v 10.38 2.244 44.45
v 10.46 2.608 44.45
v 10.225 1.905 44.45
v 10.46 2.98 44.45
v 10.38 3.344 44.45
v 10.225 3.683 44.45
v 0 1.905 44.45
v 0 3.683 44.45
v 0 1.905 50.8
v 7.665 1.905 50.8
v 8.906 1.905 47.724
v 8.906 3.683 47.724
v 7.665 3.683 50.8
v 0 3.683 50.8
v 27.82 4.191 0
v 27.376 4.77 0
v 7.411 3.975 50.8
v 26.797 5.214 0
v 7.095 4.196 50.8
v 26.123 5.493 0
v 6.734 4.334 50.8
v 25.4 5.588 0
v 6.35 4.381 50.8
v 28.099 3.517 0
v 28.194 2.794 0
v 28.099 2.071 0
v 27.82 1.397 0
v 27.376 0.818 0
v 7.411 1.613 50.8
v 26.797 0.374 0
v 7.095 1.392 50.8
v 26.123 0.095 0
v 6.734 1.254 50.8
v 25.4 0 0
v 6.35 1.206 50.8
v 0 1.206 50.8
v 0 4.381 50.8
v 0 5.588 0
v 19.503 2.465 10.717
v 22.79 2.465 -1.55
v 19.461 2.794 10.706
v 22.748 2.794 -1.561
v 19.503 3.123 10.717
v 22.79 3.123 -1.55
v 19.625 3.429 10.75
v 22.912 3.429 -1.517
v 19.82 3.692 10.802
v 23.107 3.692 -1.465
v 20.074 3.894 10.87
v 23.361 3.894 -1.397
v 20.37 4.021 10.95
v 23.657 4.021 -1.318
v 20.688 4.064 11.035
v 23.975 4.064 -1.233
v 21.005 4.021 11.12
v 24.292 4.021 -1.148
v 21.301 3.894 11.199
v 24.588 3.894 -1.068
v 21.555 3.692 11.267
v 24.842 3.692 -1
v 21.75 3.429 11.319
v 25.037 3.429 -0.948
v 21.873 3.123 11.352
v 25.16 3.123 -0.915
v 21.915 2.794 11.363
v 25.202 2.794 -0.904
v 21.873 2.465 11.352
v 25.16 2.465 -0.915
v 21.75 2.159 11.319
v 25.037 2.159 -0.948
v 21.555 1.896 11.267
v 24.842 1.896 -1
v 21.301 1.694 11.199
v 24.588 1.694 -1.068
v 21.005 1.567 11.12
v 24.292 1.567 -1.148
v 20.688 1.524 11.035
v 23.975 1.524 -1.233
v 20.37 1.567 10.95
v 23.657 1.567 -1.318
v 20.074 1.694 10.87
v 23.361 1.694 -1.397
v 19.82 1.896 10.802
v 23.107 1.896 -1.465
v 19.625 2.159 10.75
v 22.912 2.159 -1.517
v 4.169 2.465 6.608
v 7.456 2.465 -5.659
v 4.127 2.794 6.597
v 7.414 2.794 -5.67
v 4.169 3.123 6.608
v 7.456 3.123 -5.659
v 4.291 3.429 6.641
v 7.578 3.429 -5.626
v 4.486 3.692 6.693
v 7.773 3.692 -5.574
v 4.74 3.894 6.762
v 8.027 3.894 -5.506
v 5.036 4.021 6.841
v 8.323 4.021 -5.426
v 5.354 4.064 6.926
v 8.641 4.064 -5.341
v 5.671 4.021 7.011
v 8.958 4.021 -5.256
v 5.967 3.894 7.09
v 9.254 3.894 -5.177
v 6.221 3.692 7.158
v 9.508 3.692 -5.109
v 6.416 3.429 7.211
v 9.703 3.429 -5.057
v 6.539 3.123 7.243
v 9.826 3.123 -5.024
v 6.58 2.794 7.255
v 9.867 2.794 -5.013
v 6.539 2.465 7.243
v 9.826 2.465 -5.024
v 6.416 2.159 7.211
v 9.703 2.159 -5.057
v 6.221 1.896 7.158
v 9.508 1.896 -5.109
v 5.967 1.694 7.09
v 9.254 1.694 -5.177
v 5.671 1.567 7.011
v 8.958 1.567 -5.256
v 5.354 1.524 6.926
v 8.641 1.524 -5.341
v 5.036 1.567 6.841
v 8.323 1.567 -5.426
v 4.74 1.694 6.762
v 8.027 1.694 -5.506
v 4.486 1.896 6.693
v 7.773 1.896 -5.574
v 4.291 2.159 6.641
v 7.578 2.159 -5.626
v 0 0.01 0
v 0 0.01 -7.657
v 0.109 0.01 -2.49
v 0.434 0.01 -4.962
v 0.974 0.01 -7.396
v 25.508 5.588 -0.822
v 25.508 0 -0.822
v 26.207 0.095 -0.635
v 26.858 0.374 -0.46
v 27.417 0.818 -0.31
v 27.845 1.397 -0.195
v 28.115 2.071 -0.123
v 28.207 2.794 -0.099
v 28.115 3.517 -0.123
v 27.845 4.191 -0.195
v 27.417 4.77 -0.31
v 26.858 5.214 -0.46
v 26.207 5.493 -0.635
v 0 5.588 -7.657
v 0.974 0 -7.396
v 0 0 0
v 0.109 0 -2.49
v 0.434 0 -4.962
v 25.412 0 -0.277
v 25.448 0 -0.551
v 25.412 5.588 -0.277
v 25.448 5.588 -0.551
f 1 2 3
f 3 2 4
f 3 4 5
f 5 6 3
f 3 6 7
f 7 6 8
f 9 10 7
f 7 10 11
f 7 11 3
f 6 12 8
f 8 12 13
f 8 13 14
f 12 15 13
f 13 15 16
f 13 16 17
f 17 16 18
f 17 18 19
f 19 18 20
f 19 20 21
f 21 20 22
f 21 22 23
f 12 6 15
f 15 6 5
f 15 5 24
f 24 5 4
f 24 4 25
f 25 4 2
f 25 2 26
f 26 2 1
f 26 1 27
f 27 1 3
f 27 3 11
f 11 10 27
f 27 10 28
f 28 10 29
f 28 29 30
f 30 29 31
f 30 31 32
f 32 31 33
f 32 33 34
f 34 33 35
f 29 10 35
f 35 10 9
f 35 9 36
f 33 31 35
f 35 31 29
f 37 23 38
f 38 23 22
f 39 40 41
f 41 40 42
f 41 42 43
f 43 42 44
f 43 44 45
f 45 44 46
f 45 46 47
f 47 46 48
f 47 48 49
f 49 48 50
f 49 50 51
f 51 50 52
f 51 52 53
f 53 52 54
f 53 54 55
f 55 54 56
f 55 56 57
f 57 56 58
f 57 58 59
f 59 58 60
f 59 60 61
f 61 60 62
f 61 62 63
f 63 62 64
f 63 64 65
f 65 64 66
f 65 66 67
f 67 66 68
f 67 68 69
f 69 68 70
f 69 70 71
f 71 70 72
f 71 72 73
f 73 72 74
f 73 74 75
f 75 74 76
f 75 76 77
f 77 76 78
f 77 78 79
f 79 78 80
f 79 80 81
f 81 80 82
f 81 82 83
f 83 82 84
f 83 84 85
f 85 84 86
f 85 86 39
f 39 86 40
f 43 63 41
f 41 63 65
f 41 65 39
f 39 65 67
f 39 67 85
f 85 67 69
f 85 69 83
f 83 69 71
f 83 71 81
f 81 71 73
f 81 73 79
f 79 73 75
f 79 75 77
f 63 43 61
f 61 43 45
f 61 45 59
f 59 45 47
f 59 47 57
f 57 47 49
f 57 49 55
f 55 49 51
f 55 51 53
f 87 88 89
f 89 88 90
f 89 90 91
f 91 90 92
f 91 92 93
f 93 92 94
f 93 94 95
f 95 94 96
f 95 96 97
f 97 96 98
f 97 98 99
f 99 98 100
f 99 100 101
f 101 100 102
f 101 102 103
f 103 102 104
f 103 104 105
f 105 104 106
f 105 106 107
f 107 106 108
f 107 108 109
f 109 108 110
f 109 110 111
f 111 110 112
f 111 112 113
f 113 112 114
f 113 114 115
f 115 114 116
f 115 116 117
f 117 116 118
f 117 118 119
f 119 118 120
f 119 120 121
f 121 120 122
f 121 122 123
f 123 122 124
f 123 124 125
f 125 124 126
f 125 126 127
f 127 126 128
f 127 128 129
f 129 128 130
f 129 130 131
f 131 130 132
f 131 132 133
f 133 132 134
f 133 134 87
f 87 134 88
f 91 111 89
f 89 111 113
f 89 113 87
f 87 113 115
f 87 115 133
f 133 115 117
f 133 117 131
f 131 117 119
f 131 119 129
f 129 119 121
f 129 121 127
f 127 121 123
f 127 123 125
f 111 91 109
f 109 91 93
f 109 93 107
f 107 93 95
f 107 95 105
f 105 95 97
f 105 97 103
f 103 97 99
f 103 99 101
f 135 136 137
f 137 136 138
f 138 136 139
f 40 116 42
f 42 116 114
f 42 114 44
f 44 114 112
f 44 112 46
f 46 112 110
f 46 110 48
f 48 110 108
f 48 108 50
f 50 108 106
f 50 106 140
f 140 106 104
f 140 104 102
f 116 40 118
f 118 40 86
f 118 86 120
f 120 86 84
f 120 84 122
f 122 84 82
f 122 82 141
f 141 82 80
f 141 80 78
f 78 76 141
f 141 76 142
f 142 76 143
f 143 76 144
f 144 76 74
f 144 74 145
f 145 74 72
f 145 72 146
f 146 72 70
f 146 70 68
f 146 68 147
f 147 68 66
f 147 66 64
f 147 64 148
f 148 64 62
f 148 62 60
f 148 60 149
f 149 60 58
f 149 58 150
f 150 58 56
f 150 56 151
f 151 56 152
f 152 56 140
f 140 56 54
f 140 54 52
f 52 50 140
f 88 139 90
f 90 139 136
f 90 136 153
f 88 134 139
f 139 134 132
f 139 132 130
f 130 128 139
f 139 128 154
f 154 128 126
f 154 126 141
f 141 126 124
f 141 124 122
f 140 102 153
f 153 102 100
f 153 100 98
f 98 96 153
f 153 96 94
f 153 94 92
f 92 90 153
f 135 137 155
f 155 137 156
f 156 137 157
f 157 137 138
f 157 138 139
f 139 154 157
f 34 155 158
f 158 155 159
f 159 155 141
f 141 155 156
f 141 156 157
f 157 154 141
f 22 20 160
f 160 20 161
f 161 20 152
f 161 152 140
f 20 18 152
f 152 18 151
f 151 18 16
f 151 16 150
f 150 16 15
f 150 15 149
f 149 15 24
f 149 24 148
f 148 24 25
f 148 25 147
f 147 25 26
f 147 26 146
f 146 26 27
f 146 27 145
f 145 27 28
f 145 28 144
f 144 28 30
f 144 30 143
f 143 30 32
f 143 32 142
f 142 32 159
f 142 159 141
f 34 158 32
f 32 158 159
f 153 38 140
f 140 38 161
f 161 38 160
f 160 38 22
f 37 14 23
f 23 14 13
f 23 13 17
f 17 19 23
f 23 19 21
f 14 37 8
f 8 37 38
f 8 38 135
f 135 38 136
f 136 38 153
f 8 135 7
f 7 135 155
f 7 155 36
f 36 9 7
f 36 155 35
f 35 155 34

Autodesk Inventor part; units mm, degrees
ref_plane "YZ Plane" through (0, 0, 0) normal (1, 0, 0) x (0, 1, 0)
ref_plane "XZ Plane" through (0, 0, 0) normal (0, 1, 0) x (-1, 0, 0)
sketch "Sketch2" plane through (0, 0, 0) normal (0, 0, 1) x (1, 0, 0)
  line L0 (0, 0) -> (25.4, 0)
  line L1 (25.4, 0) -> (25.4, 5.588)
  line L2 (25.4, 5.588) -> (0, 5.588)
  line L3 (0, 5.588) -> (0, 0)
  arc A0 (25.4, 0) -> (25.4, 5.588) centre (25.4, 2.794) ccw
  dimension "d0" = 25.4
  dimension "d1" = 5.588
ref_plane "Work Plane1" through (0, 0, 50.8) normal (0, 0, 1) x (1, 0, 0)
sketch "Sketch3" plane through (0, 0, 50.8) normal (0, 0, 1) x (1, 0, 0)
  line L0 (0, 1.2065) -> (6.35, 1.2065)
  line L1 (6.35, 1.2065) -> (6.35, 4.3815)
  line L2 (6.35, 4.3815) -> (0, 4.3815)
  line L3 (0, 4.3815) -> (0, 1.2065)
  arc A0 (6.35, 1.2065) -> (6.35, 4.3815) centre (6.35, 2.794) ccw
  point P0 (0, 0)
  dimension "d3" = 6.35
  dimension "d4" = 3.175
  dimension "d5" = 1.2065
loft "Loft1" add profiles "Sketch2", "Sketch3"
sketch "Sketch4" plane through (0, 0, 0) normal (-1, 0, 0) x (0, 0, 1)
  line L0 (0, 5.588) -> (0, 0) projected
  line L1 (0, 0) -> (50.8, 1.2065) projected
  line L2 (50.8, 4.3815) -> (50.8, 1.2065) projected
  line L3 (0, 5.588) -> (50.8, 4.3815) projected
  line L4 (0, 5.588) -> (50.8, 4.3815) projected
  line L5 (44.45, 4.5323) -> (44.45, 1.0557)
  line L6 (50.8, 1.2065) -> (0, 0) projected
  dimension "d10" = 6.35
extrude "Extrusion1" add sketch "Sketch4" along normal blind 38.608 contours L3 L2 L1 L5
sketch "Sketch5" plane through (25.4, 5.588, 0) normal (0, 0, -1) x (-1, 0, 0)
  line L0 (25.4, 0) -> (25.4, -5.588) projected
  line L1 (0, 0) -> (25.4, 0) projected
  arc A0 (0, 0) -> (0, -5.588) centre (0, -2.794) ccw projected
  line L2 (25.4, -5.588) -> (0, -5.588) projected
  line L3 (25.4, 0) -> (25.4, -5.588) projected
  line L4 (25.4, 0) -> (36.1487, 0)
  line L5 (36.1487, 0) -> (36.1487, -5.5776)
  line L6 (36.1487, -5.5776) -> (25.4, -5.5776)
  line L7 (25.4, -5.5776) -> (25.4, 0)
  line L8 (-3.175, -0.1076) -> (-3.175, -7.007)
  line L9 (25.4, -5.588) -> (0, -5.588) projected
revolve "Revolution1" add sketch "Sketch5" angle 15 about axis through (28.575, 5.4804, 0) along (0, -1, 0)
sketch "Sketch7" plane through (-10.7487, 5.588, 0) normal (0, 1, 0) x (1, 0, 0)
  line L0 (0, 0) -> (10.7487, 0) projected
  line L1 (36.1487, 0) -> (10.7487, 0) projected
  arc A0 (36.2569, 0.8218) -> (36.1487, 0) centre (39.3237, 0) ccw projected
  line L2 (1.3399, 10.1777) -> (36.2569, 0.8218) projected
  arc A1 (1.3399, 10.1777) -> (0, 0) centre (39.3237, 0) ccw projected
  line L3 (10.7487, 0) -> (10.7487, -44.45) projected
  line L4 (10.7487, 0) -> (-2.0556, 0)
  line L5 (-2.0556, 0) -> (-2.0556, 10.6947)
  line L6 (-2.0556, 10.6947) -> (10.7487, 10.6947)
  line L7 (10.7487, 10.6947) -> (10.7487, 0)
extrude "Extrusion2" cut sketch "Sketch7" against normal blind 38.1 contours A1 L2 L7 L0 | L4 L5 L6 L7 L2 A1
sketch "Sketch8" plane through (0, 0.0104, -7.6566) normal (0.258819, 0, -0.9659258) x (-0.9659258, 0, -0.258819)
  line L0 (-29.583, 2.7836) -> (-24.8205, 2.7836)
  line L1 (-24.8205, 2.7836) -> (-8.9455, 2.7836)
  circle A0 centre (-24.8205, 2.7836) radius 1.27
  circle A1 centre (-8.9455, 2.7836) radius 1.27
  line L2 (-26.408, -0.0104) -> (0, -0.0104) projected
  point P0 (-1.9817, -0.0104)
  point P1 (0, 0)
  dimension "d17" = 4.7625
  dimension "d18" = 15.875
  dimension "d19" = 2.54
  dimension "d20" = 2.54
  dimension "d23" = 2.794
extrude "Extrusion4" cut sketch "Sketch8" against normal blind 12.7
sketch "Sketch9" plane through (0, 1.0557, 44.45) normal (0, 0, -1) x (-1, 0, 0)
  line L0 (0, 0) -> (0, 3.4766) projected
  line L1 (0, 0) -> (38.608, 0) projected
  line L2 (38.608, 3.4766) -> (38.608, 0) projected
  line L3 (0, 3.4766) -> (38.608, 3.4766) projected
  point P0 (0, -1.0557)
extrude "Extrusion5" cut sketch "Sketch9" against normal through all
sketch "Sketch10" plane through (0, 1.2065, 50.8) normal (-1, 0, 0) x (0, 0, 1)
  line L0 (0, 3.175) -> (0, 0) projected
  line L1 (0, 2.4765) -> (-6.35, 2.4765)
  line L2 (-6.35, 2.4765) -> (-6.35, 0.6985)
  line L3 (-6.35, 0.6985) -> (0, 0.6985)
  line L4 (0, 0.6985) -> (0, 2.4765)
  line L5 (-50.8, 4.3815) -> (0, 3.175) construction
  line L6 (0, 2.4765) -> (0, 3.175) construction
  line L7 (0, 3.175) -> (0, 0) construction
  line L8 (0, 0.6985) -> (0, 0) construction
  point P0 (-50.8, -1.2065)
  dimension "d28" = 1.778
  dimension "d29" = 6.35
extrude "Extrusion6" cut sketch "Sketch10" against normal through all
properties part number "DivePlanesStabilizingFins_Print1"
